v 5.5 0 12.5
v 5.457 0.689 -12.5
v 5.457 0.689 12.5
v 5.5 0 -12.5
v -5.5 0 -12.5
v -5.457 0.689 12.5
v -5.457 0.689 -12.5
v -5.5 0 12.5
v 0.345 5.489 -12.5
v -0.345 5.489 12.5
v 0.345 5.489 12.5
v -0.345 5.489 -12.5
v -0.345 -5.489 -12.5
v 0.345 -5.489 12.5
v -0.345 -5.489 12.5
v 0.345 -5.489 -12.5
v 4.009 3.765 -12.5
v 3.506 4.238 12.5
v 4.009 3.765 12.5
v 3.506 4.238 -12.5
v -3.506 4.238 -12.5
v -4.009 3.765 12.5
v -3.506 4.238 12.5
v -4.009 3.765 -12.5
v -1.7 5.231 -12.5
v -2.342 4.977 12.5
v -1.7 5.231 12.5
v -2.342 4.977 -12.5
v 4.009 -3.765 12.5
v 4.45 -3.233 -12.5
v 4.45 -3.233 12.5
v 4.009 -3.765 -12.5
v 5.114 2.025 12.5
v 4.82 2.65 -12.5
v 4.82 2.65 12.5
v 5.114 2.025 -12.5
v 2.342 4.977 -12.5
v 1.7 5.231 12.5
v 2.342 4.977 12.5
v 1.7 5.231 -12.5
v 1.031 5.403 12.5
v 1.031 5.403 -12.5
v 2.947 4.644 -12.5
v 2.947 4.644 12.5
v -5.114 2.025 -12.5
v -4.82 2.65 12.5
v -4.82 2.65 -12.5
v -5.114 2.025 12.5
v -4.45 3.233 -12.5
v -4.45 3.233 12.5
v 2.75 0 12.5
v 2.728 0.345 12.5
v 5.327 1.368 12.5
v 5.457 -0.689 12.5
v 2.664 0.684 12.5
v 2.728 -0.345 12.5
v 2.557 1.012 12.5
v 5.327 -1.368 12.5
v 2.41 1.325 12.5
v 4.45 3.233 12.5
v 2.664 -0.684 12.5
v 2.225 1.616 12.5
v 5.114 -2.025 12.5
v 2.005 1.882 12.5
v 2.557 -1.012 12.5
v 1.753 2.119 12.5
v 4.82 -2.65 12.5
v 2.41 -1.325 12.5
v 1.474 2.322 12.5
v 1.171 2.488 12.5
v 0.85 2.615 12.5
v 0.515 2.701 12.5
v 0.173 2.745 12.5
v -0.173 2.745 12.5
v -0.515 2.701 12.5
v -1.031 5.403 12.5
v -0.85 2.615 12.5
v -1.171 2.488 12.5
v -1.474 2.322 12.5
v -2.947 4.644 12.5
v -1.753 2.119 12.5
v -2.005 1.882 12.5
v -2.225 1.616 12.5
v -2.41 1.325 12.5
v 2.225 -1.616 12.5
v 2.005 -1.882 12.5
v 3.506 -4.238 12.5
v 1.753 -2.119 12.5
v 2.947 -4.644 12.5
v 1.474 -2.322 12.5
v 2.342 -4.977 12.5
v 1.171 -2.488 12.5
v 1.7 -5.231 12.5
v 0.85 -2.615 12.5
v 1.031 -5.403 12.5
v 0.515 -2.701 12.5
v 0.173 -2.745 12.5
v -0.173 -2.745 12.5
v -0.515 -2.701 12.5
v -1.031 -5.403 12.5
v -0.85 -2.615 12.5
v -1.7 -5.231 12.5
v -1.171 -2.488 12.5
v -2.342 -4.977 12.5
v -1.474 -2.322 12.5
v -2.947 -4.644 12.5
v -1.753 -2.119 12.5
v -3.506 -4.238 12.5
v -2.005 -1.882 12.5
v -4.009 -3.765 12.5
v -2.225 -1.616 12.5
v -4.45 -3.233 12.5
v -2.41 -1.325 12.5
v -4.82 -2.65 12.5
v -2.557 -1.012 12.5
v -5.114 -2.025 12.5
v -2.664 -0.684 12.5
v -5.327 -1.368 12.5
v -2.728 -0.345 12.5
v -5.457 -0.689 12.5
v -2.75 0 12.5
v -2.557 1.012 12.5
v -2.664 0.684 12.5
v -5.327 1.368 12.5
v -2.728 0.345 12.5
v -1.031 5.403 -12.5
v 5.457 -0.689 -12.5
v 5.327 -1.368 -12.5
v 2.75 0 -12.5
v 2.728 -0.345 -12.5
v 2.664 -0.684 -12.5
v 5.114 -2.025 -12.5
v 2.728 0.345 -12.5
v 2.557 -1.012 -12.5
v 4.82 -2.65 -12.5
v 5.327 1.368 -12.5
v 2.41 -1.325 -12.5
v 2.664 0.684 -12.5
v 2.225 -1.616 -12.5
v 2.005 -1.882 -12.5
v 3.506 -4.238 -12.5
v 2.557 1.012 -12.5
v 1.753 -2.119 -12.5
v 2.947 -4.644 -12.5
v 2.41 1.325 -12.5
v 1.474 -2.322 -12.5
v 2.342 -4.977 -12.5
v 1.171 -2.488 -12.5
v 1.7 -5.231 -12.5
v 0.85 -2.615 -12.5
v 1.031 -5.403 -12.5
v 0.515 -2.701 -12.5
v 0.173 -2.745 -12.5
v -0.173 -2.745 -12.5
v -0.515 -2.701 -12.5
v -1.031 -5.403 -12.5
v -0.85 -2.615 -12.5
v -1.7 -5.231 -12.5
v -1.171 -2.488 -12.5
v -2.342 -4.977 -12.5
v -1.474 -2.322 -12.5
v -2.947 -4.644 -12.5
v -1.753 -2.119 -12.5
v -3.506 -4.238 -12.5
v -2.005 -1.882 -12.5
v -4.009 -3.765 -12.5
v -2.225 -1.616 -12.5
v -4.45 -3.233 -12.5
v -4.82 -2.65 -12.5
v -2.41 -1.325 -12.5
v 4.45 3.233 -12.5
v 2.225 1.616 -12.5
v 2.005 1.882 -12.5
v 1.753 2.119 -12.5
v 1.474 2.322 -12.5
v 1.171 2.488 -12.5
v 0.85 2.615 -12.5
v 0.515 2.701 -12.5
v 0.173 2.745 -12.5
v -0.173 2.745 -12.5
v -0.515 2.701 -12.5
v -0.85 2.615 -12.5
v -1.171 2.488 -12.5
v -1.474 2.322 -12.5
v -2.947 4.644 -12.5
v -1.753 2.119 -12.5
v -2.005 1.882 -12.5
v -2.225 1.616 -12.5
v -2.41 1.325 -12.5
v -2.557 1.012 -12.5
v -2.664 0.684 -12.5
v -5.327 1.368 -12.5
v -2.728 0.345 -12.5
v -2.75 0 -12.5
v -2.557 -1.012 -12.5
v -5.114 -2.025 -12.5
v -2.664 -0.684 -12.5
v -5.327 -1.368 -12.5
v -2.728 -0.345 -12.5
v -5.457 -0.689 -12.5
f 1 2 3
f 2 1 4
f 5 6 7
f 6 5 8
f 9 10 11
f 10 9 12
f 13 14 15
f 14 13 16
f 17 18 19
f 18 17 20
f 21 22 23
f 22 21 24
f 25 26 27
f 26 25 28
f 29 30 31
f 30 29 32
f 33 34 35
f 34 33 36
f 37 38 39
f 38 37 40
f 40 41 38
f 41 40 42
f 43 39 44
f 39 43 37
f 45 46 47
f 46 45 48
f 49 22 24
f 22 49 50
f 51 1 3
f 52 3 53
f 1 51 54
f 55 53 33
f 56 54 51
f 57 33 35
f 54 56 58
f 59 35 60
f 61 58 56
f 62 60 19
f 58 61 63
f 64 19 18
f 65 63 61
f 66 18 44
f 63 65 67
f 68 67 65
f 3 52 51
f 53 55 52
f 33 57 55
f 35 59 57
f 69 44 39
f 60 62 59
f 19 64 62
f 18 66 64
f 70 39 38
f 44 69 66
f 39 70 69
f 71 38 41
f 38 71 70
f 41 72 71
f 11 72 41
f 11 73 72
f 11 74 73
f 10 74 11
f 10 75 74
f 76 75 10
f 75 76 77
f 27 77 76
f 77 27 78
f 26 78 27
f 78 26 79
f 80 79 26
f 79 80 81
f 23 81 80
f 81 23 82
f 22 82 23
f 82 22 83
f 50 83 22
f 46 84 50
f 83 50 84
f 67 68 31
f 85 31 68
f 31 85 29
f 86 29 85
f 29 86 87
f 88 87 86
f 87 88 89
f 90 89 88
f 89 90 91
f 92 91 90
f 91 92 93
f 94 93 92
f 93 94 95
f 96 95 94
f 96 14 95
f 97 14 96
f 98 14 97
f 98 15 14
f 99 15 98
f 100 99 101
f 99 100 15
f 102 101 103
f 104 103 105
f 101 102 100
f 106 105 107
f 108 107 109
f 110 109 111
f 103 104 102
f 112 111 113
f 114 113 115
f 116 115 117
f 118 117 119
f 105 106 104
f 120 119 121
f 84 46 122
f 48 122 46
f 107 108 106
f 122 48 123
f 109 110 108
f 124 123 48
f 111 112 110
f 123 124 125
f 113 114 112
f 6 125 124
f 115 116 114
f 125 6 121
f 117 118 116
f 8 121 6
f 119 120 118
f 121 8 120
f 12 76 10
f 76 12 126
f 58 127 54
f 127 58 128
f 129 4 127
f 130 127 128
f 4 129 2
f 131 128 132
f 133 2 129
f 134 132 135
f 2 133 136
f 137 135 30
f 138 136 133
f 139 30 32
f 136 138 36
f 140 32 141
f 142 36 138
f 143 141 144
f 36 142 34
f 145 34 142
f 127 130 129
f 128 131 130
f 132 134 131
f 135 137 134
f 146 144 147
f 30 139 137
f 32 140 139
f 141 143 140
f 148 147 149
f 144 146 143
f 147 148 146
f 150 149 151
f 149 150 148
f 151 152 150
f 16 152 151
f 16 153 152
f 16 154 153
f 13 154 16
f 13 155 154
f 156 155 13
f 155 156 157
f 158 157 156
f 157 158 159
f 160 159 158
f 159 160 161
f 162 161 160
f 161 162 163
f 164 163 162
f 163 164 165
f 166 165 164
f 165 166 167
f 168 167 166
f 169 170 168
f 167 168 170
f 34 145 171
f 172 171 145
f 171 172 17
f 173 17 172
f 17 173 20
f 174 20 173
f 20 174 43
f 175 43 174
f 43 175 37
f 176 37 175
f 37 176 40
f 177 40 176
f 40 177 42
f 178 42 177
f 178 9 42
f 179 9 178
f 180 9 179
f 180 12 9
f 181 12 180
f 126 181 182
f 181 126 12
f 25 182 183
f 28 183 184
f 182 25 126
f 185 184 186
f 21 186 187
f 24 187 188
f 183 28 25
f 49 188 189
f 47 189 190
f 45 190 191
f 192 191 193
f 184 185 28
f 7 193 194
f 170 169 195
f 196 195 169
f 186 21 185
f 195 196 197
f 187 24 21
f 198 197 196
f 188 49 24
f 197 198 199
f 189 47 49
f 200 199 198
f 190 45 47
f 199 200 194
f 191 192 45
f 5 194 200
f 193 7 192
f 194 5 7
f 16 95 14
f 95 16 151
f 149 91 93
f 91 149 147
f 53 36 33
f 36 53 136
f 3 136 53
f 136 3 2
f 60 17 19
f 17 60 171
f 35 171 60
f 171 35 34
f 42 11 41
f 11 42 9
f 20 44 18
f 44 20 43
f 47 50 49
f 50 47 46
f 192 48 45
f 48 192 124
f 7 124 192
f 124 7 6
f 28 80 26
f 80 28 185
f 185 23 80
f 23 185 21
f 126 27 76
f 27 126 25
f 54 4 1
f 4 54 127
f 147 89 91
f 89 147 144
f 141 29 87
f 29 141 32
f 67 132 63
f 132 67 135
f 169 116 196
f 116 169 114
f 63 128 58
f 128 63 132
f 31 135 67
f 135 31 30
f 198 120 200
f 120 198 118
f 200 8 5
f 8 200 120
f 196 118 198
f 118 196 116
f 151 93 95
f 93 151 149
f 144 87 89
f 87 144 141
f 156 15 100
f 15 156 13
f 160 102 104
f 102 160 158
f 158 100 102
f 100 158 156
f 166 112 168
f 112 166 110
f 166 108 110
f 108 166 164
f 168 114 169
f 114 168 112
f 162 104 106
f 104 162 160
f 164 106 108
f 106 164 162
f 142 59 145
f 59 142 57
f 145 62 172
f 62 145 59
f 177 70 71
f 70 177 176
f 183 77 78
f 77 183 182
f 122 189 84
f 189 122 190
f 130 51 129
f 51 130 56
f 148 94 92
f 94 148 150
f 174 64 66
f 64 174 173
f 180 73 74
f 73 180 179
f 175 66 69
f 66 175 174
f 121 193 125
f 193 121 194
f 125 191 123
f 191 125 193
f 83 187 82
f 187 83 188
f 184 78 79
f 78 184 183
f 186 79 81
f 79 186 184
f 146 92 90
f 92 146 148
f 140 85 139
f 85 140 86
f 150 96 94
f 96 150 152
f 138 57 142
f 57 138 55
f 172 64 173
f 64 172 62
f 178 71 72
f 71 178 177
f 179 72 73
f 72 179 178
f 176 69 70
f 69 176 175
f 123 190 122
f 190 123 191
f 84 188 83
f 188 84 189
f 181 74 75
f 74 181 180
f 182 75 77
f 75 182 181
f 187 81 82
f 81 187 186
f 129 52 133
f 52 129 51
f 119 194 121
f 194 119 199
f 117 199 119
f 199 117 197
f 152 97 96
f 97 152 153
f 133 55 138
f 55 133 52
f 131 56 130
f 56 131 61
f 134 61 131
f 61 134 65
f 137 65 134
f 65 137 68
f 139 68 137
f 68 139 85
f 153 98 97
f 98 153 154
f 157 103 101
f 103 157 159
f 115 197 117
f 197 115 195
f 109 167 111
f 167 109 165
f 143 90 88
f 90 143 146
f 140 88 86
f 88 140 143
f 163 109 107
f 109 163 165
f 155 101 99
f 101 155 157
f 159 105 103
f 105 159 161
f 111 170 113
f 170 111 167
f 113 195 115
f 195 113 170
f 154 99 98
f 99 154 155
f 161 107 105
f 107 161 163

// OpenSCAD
$fn = 50;


difference() {
	union() {
		translate(v = [0, 0, -12.5000000000]) {
			cylinder(h = 25, r = 5.5000000000);
		}
	}
	union() {
		translate(v = [0, 0, -100.0000000000]) {
			cylinder(h = 200, r = 2.7500000000);
		}
	}
}
